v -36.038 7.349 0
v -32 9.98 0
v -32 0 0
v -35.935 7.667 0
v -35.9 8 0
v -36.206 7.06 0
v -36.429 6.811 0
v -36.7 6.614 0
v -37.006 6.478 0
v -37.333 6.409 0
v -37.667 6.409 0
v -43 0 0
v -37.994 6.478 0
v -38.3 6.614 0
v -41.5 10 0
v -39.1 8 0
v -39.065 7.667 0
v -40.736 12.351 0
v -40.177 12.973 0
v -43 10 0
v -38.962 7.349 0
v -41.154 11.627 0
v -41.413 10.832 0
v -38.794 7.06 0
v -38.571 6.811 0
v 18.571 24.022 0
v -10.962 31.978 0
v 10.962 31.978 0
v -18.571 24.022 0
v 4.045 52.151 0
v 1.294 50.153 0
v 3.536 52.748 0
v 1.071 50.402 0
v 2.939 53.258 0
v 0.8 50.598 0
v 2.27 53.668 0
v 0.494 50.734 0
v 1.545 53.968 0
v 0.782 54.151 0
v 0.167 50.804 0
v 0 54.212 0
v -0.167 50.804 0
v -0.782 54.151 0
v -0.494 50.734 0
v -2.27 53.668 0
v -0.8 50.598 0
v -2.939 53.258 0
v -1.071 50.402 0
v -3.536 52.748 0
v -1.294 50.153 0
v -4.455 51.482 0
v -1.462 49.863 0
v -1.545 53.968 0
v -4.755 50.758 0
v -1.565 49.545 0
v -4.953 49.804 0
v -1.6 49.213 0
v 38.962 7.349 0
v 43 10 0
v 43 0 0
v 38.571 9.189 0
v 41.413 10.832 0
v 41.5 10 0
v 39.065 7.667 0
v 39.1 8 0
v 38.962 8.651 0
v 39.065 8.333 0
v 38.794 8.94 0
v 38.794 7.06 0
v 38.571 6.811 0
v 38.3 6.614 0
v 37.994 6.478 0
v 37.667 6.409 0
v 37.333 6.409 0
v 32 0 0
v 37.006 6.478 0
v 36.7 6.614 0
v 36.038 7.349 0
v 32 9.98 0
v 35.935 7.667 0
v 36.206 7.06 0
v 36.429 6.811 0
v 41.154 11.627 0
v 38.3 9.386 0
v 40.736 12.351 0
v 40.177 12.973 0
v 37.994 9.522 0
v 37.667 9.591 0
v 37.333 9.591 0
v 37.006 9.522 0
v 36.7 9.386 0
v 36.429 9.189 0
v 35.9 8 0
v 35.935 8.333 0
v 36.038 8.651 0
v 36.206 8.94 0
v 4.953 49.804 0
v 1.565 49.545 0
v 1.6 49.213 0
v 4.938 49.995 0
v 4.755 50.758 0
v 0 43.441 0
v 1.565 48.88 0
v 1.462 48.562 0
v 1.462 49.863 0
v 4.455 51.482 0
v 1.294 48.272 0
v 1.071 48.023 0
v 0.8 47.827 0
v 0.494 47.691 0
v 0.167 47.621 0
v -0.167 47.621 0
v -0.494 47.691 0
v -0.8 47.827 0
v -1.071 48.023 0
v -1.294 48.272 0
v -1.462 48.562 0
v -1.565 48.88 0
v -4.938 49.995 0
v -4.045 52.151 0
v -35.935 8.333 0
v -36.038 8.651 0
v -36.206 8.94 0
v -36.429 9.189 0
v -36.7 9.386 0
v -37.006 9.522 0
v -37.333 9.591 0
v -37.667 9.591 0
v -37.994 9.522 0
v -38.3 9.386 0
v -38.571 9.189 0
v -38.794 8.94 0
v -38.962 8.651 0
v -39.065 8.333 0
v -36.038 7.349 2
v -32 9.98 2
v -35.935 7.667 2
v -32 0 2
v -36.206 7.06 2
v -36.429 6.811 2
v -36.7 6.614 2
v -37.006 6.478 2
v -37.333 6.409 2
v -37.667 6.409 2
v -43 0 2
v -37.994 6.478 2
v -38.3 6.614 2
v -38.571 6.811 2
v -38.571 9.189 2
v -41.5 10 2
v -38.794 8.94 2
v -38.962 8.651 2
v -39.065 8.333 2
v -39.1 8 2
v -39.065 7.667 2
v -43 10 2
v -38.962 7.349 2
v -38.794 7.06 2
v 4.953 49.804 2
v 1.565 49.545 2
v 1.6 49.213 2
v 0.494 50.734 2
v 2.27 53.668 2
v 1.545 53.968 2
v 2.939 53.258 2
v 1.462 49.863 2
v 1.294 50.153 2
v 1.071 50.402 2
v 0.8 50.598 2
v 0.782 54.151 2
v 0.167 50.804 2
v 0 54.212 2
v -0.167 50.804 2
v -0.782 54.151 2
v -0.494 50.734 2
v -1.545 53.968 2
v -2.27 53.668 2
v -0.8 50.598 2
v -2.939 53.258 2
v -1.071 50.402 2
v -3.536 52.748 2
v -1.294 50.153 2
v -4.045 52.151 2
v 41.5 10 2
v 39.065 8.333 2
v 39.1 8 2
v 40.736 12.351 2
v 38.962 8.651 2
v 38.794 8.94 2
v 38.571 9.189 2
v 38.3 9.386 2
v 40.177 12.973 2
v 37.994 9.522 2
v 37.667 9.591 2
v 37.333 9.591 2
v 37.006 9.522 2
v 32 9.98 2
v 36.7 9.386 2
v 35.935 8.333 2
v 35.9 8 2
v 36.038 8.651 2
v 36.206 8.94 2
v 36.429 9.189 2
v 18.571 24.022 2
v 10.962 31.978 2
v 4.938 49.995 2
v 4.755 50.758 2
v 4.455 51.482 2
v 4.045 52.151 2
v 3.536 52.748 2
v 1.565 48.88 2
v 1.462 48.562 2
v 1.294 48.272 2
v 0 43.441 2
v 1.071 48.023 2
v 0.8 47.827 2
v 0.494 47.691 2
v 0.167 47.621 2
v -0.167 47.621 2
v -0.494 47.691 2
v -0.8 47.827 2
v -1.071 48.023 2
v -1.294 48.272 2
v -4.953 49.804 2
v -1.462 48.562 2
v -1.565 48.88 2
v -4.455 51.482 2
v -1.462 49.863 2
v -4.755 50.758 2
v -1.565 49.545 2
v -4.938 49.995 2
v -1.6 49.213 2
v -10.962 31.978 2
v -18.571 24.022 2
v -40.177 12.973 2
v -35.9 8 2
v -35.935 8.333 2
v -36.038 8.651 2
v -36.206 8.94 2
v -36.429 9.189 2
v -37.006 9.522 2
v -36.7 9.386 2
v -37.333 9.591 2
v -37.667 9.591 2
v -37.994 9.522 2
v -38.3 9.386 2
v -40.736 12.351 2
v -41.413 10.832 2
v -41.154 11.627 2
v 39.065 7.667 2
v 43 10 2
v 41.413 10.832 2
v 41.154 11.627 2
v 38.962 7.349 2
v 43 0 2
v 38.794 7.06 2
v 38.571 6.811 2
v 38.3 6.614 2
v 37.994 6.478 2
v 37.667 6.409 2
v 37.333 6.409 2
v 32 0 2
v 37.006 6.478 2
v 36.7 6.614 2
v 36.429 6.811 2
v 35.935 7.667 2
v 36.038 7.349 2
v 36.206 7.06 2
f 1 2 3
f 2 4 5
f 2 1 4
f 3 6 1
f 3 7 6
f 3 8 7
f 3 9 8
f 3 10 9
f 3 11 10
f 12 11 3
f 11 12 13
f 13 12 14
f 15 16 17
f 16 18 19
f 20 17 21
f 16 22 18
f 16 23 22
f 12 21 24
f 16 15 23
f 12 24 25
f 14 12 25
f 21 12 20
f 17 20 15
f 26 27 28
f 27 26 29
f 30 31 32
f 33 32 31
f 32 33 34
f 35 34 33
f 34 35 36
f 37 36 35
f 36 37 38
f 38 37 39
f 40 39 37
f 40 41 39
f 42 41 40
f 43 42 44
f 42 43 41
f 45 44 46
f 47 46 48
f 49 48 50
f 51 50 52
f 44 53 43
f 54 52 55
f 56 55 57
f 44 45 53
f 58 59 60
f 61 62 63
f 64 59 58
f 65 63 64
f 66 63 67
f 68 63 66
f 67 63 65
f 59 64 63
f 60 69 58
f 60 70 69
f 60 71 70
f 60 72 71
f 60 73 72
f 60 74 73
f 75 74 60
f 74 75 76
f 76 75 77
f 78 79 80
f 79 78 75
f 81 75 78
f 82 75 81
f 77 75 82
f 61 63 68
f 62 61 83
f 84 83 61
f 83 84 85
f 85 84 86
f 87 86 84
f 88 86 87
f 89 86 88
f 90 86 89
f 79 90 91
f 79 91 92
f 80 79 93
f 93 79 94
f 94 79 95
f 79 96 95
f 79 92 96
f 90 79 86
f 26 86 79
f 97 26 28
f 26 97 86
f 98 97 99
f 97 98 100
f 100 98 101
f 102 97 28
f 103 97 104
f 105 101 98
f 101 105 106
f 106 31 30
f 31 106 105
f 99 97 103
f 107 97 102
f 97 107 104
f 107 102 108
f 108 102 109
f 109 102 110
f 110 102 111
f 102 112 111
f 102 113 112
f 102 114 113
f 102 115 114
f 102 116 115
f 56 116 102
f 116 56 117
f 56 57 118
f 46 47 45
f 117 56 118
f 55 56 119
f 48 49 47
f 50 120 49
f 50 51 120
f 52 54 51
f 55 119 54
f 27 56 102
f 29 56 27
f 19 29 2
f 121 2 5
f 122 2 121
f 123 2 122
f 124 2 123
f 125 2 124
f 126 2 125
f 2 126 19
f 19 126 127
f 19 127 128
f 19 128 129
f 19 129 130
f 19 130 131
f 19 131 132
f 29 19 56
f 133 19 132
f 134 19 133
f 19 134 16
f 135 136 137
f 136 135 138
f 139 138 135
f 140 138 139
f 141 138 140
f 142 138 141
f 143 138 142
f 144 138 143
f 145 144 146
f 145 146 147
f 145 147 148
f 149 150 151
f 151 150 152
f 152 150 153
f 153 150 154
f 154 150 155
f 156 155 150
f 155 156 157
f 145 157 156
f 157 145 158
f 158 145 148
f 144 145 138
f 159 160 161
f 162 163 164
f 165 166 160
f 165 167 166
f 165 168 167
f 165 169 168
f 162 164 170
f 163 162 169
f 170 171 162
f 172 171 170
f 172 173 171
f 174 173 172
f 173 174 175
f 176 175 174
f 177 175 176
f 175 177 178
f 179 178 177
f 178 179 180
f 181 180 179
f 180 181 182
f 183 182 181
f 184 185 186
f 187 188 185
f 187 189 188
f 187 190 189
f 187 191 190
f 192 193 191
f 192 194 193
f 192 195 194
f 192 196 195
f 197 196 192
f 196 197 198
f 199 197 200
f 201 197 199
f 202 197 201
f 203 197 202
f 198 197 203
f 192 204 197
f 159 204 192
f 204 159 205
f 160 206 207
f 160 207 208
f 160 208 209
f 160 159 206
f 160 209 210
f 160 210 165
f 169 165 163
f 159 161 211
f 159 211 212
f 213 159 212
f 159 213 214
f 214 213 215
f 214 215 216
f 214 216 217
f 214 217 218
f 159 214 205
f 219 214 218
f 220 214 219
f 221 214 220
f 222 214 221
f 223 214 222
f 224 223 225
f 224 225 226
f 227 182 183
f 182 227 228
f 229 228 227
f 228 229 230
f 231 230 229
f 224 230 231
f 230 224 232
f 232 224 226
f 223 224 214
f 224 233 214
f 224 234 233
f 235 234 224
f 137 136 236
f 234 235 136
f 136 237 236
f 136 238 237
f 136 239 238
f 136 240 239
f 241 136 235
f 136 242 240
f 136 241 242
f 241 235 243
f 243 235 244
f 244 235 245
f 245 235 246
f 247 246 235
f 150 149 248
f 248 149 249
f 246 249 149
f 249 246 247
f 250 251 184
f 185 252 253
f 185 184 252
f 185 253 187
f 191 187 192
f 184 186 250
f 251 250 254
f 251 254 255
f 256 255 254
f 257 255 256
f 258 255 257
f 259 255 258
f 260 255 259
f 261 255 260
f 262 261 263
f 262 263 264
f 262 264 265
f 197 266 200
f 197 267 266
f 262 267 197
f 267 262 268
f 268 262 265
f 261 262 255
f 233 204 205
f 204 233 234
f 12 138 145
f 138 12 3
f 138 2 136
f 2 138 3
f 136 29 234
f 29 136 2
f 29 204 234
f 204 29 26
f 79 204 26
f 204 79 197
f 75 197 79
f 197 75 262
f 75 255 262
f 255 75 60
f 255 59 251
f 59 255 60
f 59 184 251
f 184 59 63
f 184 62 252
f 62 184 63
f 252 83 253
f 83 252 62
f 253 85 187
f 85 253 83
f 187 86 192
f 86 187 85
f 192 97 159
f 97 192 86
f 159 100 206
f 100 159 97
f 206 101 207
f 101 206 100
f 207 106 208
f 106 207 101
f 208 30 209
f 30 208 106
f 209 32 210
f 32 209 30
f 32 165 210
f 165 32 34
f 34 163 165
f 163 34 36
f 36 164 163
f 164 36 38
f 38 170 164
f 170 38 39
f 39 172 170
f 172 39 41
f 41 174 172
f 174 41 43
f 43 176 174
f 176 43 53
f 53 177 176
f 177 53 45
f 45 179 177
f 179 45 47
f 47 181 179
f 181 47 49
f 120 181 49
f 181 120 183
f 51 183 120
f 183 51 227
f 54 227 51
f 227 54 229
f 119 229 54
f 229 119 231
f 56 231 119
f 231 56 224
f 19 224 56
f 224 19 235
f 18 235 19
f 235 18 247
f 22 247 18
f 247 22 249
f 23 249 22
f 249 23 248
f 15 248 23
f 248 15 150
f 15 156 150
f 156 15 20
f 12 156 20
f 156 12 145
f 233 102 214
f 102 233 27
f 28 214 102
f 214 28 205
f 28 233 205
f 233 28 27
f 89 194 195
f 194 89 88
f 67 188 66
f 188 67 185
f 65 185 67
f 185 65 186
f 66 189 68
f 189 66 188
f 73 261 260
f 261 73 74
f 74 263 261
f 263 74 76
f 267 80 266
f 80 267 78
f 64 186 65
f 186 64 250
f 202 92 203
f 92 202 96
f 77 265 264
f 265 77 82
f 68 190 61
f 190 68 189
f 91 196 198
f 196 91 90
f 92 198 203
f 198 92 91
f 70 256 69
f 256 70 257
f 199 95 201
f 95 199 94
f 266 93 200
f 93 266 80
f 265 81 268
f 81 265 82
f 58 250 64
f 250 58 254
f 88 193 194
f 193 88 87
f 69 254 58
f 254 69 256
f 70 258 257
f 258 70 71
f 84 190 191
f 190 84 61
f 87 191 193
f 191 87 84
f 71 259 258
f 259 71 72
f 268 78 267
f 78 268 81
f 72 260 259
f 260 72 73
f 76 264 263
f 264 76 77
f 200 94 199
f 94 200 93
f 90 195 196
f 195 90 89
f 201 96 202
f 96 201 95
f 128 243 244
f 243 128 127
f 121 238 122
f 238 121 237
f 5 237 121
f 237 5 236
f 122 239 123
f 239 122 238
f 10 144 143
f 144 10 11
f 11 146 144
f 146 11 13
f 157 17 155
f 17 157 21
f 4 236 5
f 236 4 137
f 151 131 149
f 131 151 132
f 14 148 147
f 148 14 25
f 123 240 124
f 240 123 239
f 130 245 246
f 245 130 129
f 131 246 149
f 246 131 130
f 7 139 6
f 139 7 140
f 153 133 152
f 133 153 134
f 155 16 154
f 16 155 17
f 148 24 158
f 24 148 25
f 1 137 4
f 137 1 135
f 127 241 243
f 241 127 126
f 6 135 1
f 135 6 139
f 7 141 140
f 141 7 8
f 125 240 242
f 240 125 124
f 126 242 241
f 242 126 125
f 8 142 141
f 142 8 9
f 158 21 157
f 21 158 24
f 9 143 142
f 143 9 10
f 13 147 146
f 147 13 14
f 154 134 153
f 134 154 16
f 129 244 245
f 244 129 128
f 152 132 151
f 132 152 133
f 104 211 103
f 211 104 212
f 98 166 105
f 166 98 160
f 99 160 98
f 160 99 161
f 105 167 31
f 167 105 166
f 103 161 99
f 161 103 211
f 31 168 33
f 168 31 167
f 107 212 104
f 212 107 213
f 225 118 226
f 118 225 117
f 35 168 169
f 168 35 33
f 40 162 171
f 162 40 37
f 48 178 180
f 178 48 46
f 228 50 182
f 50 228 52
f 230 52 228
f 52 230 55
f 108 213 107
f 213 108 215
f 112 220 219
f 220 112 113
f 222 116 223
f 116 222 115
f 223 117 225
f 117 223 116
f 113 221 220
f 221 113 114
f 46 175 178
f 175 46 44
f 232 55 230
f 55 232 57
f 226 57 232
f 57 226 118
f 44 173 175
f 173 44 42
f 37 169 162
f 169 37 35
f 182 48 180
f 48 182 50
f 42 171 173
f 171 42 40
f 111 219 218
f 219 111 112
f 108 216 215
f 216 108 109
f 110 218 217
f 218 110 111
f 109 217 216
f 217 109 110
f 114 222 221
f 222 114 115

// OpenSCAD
// PSU support stand -- capital "A" shape with a middle crossbar.
// Open-frame-9020 project. Printed flat (2D profile extruded), same style
// as the other parts in this repo (frame-base.scad / motherboard-tray.scad).
//
// The two foot holes match the motherboard tray's motherboard screw holes
// (hole_d = 3.2 mm -> M3), so the stand can be bolted down the same way the
// board is. A single hole of the same size sits at the peak, 49.2125 mm
// above the base, for bolting on whatever straps/holds the PSU.

/* ---------- Holes (match motherboard-tray.scad hole_d) ---------- */
hole_d       = 3.2;        // M3 clearance -- same as motherboard-tray.scad "motherboard screw holes"
pad_d        = 10;         // round pad around each hole

/* ---------- Shape ---------- */
stand_t      = 2;          // extrusion thickness (printed flat)
leg_w        = 8;         // stroke width of each leg of the "A"
base_spread  = 75;         // distance between the two feet centers
foot_w       = 11;         // width of the flat foot pad at the base of each leg
foot_h       = 10;         // height of the flat foot pad
foot_hole_h  = 8;          // foot screw hole height above the stand's bottom edge
crossbar_h   = 28;         // height of the crossbar (center support) above the bottom edge
peak_hole_h  = 49.2125;    // height of the peak hole above the base of the "A"

/* ---------- Derived ---------- */
leg_x  = base_spread/2;
apex_y = peak_hole_h;       // the two legs converge at the peak hole's pad

// x position of a leg's centerline at height y, interpolated from the top
// of the foot (leg_x, foot_h) straight up to the apex (0, apex_y)
function leg_x_at(y) = leg_x * (1 - (y - foot_h) / (apex_y - foot_h));

module foot(x) {
    translate([x - foot_w/2, 0]) square([foot_w, foot_h]);
}

module leg(x) {
    hull() {
        translate([x, foot_h]) circle(d = leg_w, $fn = 30);
        translate([0, apex_y]) circle(d = leg_w, $fn = 30);
    }
}

module crossbar() {
    hull() {
        translate([ leg_x_at(crossbar_h), crossbar_h]) circle(d = leg_w, $fn = 30);
        translate([-leg_x_at(crossbar_h), crossbar_h]) circle(d = leg_w, $fn = 30);
    }
}

module stand_2d() {
    foot(leg_x);
    foot(-leg_x);
    leg(leg_x);
    leg(-leg_x);
    crossbar();
    translate([0, apex_y]) circle(d = pad_d, $fn = 40);
}

difference() {
    linear_extrude(height = stand_t) stand_2d();

    // foot mounting holes (same size as the tray's motherboard screw holes)
    translate([ leg_x, foot_hole_h, -1]) cylinder(d = hole_d, h = stand_t + 2, $fn = 30);
    translate([-leg_x, foot_hole_h, -1]) cylinder(d = hole_d, h = stand_t + 2, $fn = 30);

    // peak hole, 49.2125 mm above the base, same size
    translate([0, apex_y, -1]) cylinder(d = hole_d, h = stand_t + 2, $fn = 30);
}

echo(str("PSU stand footprint: ", base_spread + foot_w, " x ", apex_y + leg_w/2, " mm"));
echo(str("Peak hole height above base: ", peak_hole_h, " mm"));
